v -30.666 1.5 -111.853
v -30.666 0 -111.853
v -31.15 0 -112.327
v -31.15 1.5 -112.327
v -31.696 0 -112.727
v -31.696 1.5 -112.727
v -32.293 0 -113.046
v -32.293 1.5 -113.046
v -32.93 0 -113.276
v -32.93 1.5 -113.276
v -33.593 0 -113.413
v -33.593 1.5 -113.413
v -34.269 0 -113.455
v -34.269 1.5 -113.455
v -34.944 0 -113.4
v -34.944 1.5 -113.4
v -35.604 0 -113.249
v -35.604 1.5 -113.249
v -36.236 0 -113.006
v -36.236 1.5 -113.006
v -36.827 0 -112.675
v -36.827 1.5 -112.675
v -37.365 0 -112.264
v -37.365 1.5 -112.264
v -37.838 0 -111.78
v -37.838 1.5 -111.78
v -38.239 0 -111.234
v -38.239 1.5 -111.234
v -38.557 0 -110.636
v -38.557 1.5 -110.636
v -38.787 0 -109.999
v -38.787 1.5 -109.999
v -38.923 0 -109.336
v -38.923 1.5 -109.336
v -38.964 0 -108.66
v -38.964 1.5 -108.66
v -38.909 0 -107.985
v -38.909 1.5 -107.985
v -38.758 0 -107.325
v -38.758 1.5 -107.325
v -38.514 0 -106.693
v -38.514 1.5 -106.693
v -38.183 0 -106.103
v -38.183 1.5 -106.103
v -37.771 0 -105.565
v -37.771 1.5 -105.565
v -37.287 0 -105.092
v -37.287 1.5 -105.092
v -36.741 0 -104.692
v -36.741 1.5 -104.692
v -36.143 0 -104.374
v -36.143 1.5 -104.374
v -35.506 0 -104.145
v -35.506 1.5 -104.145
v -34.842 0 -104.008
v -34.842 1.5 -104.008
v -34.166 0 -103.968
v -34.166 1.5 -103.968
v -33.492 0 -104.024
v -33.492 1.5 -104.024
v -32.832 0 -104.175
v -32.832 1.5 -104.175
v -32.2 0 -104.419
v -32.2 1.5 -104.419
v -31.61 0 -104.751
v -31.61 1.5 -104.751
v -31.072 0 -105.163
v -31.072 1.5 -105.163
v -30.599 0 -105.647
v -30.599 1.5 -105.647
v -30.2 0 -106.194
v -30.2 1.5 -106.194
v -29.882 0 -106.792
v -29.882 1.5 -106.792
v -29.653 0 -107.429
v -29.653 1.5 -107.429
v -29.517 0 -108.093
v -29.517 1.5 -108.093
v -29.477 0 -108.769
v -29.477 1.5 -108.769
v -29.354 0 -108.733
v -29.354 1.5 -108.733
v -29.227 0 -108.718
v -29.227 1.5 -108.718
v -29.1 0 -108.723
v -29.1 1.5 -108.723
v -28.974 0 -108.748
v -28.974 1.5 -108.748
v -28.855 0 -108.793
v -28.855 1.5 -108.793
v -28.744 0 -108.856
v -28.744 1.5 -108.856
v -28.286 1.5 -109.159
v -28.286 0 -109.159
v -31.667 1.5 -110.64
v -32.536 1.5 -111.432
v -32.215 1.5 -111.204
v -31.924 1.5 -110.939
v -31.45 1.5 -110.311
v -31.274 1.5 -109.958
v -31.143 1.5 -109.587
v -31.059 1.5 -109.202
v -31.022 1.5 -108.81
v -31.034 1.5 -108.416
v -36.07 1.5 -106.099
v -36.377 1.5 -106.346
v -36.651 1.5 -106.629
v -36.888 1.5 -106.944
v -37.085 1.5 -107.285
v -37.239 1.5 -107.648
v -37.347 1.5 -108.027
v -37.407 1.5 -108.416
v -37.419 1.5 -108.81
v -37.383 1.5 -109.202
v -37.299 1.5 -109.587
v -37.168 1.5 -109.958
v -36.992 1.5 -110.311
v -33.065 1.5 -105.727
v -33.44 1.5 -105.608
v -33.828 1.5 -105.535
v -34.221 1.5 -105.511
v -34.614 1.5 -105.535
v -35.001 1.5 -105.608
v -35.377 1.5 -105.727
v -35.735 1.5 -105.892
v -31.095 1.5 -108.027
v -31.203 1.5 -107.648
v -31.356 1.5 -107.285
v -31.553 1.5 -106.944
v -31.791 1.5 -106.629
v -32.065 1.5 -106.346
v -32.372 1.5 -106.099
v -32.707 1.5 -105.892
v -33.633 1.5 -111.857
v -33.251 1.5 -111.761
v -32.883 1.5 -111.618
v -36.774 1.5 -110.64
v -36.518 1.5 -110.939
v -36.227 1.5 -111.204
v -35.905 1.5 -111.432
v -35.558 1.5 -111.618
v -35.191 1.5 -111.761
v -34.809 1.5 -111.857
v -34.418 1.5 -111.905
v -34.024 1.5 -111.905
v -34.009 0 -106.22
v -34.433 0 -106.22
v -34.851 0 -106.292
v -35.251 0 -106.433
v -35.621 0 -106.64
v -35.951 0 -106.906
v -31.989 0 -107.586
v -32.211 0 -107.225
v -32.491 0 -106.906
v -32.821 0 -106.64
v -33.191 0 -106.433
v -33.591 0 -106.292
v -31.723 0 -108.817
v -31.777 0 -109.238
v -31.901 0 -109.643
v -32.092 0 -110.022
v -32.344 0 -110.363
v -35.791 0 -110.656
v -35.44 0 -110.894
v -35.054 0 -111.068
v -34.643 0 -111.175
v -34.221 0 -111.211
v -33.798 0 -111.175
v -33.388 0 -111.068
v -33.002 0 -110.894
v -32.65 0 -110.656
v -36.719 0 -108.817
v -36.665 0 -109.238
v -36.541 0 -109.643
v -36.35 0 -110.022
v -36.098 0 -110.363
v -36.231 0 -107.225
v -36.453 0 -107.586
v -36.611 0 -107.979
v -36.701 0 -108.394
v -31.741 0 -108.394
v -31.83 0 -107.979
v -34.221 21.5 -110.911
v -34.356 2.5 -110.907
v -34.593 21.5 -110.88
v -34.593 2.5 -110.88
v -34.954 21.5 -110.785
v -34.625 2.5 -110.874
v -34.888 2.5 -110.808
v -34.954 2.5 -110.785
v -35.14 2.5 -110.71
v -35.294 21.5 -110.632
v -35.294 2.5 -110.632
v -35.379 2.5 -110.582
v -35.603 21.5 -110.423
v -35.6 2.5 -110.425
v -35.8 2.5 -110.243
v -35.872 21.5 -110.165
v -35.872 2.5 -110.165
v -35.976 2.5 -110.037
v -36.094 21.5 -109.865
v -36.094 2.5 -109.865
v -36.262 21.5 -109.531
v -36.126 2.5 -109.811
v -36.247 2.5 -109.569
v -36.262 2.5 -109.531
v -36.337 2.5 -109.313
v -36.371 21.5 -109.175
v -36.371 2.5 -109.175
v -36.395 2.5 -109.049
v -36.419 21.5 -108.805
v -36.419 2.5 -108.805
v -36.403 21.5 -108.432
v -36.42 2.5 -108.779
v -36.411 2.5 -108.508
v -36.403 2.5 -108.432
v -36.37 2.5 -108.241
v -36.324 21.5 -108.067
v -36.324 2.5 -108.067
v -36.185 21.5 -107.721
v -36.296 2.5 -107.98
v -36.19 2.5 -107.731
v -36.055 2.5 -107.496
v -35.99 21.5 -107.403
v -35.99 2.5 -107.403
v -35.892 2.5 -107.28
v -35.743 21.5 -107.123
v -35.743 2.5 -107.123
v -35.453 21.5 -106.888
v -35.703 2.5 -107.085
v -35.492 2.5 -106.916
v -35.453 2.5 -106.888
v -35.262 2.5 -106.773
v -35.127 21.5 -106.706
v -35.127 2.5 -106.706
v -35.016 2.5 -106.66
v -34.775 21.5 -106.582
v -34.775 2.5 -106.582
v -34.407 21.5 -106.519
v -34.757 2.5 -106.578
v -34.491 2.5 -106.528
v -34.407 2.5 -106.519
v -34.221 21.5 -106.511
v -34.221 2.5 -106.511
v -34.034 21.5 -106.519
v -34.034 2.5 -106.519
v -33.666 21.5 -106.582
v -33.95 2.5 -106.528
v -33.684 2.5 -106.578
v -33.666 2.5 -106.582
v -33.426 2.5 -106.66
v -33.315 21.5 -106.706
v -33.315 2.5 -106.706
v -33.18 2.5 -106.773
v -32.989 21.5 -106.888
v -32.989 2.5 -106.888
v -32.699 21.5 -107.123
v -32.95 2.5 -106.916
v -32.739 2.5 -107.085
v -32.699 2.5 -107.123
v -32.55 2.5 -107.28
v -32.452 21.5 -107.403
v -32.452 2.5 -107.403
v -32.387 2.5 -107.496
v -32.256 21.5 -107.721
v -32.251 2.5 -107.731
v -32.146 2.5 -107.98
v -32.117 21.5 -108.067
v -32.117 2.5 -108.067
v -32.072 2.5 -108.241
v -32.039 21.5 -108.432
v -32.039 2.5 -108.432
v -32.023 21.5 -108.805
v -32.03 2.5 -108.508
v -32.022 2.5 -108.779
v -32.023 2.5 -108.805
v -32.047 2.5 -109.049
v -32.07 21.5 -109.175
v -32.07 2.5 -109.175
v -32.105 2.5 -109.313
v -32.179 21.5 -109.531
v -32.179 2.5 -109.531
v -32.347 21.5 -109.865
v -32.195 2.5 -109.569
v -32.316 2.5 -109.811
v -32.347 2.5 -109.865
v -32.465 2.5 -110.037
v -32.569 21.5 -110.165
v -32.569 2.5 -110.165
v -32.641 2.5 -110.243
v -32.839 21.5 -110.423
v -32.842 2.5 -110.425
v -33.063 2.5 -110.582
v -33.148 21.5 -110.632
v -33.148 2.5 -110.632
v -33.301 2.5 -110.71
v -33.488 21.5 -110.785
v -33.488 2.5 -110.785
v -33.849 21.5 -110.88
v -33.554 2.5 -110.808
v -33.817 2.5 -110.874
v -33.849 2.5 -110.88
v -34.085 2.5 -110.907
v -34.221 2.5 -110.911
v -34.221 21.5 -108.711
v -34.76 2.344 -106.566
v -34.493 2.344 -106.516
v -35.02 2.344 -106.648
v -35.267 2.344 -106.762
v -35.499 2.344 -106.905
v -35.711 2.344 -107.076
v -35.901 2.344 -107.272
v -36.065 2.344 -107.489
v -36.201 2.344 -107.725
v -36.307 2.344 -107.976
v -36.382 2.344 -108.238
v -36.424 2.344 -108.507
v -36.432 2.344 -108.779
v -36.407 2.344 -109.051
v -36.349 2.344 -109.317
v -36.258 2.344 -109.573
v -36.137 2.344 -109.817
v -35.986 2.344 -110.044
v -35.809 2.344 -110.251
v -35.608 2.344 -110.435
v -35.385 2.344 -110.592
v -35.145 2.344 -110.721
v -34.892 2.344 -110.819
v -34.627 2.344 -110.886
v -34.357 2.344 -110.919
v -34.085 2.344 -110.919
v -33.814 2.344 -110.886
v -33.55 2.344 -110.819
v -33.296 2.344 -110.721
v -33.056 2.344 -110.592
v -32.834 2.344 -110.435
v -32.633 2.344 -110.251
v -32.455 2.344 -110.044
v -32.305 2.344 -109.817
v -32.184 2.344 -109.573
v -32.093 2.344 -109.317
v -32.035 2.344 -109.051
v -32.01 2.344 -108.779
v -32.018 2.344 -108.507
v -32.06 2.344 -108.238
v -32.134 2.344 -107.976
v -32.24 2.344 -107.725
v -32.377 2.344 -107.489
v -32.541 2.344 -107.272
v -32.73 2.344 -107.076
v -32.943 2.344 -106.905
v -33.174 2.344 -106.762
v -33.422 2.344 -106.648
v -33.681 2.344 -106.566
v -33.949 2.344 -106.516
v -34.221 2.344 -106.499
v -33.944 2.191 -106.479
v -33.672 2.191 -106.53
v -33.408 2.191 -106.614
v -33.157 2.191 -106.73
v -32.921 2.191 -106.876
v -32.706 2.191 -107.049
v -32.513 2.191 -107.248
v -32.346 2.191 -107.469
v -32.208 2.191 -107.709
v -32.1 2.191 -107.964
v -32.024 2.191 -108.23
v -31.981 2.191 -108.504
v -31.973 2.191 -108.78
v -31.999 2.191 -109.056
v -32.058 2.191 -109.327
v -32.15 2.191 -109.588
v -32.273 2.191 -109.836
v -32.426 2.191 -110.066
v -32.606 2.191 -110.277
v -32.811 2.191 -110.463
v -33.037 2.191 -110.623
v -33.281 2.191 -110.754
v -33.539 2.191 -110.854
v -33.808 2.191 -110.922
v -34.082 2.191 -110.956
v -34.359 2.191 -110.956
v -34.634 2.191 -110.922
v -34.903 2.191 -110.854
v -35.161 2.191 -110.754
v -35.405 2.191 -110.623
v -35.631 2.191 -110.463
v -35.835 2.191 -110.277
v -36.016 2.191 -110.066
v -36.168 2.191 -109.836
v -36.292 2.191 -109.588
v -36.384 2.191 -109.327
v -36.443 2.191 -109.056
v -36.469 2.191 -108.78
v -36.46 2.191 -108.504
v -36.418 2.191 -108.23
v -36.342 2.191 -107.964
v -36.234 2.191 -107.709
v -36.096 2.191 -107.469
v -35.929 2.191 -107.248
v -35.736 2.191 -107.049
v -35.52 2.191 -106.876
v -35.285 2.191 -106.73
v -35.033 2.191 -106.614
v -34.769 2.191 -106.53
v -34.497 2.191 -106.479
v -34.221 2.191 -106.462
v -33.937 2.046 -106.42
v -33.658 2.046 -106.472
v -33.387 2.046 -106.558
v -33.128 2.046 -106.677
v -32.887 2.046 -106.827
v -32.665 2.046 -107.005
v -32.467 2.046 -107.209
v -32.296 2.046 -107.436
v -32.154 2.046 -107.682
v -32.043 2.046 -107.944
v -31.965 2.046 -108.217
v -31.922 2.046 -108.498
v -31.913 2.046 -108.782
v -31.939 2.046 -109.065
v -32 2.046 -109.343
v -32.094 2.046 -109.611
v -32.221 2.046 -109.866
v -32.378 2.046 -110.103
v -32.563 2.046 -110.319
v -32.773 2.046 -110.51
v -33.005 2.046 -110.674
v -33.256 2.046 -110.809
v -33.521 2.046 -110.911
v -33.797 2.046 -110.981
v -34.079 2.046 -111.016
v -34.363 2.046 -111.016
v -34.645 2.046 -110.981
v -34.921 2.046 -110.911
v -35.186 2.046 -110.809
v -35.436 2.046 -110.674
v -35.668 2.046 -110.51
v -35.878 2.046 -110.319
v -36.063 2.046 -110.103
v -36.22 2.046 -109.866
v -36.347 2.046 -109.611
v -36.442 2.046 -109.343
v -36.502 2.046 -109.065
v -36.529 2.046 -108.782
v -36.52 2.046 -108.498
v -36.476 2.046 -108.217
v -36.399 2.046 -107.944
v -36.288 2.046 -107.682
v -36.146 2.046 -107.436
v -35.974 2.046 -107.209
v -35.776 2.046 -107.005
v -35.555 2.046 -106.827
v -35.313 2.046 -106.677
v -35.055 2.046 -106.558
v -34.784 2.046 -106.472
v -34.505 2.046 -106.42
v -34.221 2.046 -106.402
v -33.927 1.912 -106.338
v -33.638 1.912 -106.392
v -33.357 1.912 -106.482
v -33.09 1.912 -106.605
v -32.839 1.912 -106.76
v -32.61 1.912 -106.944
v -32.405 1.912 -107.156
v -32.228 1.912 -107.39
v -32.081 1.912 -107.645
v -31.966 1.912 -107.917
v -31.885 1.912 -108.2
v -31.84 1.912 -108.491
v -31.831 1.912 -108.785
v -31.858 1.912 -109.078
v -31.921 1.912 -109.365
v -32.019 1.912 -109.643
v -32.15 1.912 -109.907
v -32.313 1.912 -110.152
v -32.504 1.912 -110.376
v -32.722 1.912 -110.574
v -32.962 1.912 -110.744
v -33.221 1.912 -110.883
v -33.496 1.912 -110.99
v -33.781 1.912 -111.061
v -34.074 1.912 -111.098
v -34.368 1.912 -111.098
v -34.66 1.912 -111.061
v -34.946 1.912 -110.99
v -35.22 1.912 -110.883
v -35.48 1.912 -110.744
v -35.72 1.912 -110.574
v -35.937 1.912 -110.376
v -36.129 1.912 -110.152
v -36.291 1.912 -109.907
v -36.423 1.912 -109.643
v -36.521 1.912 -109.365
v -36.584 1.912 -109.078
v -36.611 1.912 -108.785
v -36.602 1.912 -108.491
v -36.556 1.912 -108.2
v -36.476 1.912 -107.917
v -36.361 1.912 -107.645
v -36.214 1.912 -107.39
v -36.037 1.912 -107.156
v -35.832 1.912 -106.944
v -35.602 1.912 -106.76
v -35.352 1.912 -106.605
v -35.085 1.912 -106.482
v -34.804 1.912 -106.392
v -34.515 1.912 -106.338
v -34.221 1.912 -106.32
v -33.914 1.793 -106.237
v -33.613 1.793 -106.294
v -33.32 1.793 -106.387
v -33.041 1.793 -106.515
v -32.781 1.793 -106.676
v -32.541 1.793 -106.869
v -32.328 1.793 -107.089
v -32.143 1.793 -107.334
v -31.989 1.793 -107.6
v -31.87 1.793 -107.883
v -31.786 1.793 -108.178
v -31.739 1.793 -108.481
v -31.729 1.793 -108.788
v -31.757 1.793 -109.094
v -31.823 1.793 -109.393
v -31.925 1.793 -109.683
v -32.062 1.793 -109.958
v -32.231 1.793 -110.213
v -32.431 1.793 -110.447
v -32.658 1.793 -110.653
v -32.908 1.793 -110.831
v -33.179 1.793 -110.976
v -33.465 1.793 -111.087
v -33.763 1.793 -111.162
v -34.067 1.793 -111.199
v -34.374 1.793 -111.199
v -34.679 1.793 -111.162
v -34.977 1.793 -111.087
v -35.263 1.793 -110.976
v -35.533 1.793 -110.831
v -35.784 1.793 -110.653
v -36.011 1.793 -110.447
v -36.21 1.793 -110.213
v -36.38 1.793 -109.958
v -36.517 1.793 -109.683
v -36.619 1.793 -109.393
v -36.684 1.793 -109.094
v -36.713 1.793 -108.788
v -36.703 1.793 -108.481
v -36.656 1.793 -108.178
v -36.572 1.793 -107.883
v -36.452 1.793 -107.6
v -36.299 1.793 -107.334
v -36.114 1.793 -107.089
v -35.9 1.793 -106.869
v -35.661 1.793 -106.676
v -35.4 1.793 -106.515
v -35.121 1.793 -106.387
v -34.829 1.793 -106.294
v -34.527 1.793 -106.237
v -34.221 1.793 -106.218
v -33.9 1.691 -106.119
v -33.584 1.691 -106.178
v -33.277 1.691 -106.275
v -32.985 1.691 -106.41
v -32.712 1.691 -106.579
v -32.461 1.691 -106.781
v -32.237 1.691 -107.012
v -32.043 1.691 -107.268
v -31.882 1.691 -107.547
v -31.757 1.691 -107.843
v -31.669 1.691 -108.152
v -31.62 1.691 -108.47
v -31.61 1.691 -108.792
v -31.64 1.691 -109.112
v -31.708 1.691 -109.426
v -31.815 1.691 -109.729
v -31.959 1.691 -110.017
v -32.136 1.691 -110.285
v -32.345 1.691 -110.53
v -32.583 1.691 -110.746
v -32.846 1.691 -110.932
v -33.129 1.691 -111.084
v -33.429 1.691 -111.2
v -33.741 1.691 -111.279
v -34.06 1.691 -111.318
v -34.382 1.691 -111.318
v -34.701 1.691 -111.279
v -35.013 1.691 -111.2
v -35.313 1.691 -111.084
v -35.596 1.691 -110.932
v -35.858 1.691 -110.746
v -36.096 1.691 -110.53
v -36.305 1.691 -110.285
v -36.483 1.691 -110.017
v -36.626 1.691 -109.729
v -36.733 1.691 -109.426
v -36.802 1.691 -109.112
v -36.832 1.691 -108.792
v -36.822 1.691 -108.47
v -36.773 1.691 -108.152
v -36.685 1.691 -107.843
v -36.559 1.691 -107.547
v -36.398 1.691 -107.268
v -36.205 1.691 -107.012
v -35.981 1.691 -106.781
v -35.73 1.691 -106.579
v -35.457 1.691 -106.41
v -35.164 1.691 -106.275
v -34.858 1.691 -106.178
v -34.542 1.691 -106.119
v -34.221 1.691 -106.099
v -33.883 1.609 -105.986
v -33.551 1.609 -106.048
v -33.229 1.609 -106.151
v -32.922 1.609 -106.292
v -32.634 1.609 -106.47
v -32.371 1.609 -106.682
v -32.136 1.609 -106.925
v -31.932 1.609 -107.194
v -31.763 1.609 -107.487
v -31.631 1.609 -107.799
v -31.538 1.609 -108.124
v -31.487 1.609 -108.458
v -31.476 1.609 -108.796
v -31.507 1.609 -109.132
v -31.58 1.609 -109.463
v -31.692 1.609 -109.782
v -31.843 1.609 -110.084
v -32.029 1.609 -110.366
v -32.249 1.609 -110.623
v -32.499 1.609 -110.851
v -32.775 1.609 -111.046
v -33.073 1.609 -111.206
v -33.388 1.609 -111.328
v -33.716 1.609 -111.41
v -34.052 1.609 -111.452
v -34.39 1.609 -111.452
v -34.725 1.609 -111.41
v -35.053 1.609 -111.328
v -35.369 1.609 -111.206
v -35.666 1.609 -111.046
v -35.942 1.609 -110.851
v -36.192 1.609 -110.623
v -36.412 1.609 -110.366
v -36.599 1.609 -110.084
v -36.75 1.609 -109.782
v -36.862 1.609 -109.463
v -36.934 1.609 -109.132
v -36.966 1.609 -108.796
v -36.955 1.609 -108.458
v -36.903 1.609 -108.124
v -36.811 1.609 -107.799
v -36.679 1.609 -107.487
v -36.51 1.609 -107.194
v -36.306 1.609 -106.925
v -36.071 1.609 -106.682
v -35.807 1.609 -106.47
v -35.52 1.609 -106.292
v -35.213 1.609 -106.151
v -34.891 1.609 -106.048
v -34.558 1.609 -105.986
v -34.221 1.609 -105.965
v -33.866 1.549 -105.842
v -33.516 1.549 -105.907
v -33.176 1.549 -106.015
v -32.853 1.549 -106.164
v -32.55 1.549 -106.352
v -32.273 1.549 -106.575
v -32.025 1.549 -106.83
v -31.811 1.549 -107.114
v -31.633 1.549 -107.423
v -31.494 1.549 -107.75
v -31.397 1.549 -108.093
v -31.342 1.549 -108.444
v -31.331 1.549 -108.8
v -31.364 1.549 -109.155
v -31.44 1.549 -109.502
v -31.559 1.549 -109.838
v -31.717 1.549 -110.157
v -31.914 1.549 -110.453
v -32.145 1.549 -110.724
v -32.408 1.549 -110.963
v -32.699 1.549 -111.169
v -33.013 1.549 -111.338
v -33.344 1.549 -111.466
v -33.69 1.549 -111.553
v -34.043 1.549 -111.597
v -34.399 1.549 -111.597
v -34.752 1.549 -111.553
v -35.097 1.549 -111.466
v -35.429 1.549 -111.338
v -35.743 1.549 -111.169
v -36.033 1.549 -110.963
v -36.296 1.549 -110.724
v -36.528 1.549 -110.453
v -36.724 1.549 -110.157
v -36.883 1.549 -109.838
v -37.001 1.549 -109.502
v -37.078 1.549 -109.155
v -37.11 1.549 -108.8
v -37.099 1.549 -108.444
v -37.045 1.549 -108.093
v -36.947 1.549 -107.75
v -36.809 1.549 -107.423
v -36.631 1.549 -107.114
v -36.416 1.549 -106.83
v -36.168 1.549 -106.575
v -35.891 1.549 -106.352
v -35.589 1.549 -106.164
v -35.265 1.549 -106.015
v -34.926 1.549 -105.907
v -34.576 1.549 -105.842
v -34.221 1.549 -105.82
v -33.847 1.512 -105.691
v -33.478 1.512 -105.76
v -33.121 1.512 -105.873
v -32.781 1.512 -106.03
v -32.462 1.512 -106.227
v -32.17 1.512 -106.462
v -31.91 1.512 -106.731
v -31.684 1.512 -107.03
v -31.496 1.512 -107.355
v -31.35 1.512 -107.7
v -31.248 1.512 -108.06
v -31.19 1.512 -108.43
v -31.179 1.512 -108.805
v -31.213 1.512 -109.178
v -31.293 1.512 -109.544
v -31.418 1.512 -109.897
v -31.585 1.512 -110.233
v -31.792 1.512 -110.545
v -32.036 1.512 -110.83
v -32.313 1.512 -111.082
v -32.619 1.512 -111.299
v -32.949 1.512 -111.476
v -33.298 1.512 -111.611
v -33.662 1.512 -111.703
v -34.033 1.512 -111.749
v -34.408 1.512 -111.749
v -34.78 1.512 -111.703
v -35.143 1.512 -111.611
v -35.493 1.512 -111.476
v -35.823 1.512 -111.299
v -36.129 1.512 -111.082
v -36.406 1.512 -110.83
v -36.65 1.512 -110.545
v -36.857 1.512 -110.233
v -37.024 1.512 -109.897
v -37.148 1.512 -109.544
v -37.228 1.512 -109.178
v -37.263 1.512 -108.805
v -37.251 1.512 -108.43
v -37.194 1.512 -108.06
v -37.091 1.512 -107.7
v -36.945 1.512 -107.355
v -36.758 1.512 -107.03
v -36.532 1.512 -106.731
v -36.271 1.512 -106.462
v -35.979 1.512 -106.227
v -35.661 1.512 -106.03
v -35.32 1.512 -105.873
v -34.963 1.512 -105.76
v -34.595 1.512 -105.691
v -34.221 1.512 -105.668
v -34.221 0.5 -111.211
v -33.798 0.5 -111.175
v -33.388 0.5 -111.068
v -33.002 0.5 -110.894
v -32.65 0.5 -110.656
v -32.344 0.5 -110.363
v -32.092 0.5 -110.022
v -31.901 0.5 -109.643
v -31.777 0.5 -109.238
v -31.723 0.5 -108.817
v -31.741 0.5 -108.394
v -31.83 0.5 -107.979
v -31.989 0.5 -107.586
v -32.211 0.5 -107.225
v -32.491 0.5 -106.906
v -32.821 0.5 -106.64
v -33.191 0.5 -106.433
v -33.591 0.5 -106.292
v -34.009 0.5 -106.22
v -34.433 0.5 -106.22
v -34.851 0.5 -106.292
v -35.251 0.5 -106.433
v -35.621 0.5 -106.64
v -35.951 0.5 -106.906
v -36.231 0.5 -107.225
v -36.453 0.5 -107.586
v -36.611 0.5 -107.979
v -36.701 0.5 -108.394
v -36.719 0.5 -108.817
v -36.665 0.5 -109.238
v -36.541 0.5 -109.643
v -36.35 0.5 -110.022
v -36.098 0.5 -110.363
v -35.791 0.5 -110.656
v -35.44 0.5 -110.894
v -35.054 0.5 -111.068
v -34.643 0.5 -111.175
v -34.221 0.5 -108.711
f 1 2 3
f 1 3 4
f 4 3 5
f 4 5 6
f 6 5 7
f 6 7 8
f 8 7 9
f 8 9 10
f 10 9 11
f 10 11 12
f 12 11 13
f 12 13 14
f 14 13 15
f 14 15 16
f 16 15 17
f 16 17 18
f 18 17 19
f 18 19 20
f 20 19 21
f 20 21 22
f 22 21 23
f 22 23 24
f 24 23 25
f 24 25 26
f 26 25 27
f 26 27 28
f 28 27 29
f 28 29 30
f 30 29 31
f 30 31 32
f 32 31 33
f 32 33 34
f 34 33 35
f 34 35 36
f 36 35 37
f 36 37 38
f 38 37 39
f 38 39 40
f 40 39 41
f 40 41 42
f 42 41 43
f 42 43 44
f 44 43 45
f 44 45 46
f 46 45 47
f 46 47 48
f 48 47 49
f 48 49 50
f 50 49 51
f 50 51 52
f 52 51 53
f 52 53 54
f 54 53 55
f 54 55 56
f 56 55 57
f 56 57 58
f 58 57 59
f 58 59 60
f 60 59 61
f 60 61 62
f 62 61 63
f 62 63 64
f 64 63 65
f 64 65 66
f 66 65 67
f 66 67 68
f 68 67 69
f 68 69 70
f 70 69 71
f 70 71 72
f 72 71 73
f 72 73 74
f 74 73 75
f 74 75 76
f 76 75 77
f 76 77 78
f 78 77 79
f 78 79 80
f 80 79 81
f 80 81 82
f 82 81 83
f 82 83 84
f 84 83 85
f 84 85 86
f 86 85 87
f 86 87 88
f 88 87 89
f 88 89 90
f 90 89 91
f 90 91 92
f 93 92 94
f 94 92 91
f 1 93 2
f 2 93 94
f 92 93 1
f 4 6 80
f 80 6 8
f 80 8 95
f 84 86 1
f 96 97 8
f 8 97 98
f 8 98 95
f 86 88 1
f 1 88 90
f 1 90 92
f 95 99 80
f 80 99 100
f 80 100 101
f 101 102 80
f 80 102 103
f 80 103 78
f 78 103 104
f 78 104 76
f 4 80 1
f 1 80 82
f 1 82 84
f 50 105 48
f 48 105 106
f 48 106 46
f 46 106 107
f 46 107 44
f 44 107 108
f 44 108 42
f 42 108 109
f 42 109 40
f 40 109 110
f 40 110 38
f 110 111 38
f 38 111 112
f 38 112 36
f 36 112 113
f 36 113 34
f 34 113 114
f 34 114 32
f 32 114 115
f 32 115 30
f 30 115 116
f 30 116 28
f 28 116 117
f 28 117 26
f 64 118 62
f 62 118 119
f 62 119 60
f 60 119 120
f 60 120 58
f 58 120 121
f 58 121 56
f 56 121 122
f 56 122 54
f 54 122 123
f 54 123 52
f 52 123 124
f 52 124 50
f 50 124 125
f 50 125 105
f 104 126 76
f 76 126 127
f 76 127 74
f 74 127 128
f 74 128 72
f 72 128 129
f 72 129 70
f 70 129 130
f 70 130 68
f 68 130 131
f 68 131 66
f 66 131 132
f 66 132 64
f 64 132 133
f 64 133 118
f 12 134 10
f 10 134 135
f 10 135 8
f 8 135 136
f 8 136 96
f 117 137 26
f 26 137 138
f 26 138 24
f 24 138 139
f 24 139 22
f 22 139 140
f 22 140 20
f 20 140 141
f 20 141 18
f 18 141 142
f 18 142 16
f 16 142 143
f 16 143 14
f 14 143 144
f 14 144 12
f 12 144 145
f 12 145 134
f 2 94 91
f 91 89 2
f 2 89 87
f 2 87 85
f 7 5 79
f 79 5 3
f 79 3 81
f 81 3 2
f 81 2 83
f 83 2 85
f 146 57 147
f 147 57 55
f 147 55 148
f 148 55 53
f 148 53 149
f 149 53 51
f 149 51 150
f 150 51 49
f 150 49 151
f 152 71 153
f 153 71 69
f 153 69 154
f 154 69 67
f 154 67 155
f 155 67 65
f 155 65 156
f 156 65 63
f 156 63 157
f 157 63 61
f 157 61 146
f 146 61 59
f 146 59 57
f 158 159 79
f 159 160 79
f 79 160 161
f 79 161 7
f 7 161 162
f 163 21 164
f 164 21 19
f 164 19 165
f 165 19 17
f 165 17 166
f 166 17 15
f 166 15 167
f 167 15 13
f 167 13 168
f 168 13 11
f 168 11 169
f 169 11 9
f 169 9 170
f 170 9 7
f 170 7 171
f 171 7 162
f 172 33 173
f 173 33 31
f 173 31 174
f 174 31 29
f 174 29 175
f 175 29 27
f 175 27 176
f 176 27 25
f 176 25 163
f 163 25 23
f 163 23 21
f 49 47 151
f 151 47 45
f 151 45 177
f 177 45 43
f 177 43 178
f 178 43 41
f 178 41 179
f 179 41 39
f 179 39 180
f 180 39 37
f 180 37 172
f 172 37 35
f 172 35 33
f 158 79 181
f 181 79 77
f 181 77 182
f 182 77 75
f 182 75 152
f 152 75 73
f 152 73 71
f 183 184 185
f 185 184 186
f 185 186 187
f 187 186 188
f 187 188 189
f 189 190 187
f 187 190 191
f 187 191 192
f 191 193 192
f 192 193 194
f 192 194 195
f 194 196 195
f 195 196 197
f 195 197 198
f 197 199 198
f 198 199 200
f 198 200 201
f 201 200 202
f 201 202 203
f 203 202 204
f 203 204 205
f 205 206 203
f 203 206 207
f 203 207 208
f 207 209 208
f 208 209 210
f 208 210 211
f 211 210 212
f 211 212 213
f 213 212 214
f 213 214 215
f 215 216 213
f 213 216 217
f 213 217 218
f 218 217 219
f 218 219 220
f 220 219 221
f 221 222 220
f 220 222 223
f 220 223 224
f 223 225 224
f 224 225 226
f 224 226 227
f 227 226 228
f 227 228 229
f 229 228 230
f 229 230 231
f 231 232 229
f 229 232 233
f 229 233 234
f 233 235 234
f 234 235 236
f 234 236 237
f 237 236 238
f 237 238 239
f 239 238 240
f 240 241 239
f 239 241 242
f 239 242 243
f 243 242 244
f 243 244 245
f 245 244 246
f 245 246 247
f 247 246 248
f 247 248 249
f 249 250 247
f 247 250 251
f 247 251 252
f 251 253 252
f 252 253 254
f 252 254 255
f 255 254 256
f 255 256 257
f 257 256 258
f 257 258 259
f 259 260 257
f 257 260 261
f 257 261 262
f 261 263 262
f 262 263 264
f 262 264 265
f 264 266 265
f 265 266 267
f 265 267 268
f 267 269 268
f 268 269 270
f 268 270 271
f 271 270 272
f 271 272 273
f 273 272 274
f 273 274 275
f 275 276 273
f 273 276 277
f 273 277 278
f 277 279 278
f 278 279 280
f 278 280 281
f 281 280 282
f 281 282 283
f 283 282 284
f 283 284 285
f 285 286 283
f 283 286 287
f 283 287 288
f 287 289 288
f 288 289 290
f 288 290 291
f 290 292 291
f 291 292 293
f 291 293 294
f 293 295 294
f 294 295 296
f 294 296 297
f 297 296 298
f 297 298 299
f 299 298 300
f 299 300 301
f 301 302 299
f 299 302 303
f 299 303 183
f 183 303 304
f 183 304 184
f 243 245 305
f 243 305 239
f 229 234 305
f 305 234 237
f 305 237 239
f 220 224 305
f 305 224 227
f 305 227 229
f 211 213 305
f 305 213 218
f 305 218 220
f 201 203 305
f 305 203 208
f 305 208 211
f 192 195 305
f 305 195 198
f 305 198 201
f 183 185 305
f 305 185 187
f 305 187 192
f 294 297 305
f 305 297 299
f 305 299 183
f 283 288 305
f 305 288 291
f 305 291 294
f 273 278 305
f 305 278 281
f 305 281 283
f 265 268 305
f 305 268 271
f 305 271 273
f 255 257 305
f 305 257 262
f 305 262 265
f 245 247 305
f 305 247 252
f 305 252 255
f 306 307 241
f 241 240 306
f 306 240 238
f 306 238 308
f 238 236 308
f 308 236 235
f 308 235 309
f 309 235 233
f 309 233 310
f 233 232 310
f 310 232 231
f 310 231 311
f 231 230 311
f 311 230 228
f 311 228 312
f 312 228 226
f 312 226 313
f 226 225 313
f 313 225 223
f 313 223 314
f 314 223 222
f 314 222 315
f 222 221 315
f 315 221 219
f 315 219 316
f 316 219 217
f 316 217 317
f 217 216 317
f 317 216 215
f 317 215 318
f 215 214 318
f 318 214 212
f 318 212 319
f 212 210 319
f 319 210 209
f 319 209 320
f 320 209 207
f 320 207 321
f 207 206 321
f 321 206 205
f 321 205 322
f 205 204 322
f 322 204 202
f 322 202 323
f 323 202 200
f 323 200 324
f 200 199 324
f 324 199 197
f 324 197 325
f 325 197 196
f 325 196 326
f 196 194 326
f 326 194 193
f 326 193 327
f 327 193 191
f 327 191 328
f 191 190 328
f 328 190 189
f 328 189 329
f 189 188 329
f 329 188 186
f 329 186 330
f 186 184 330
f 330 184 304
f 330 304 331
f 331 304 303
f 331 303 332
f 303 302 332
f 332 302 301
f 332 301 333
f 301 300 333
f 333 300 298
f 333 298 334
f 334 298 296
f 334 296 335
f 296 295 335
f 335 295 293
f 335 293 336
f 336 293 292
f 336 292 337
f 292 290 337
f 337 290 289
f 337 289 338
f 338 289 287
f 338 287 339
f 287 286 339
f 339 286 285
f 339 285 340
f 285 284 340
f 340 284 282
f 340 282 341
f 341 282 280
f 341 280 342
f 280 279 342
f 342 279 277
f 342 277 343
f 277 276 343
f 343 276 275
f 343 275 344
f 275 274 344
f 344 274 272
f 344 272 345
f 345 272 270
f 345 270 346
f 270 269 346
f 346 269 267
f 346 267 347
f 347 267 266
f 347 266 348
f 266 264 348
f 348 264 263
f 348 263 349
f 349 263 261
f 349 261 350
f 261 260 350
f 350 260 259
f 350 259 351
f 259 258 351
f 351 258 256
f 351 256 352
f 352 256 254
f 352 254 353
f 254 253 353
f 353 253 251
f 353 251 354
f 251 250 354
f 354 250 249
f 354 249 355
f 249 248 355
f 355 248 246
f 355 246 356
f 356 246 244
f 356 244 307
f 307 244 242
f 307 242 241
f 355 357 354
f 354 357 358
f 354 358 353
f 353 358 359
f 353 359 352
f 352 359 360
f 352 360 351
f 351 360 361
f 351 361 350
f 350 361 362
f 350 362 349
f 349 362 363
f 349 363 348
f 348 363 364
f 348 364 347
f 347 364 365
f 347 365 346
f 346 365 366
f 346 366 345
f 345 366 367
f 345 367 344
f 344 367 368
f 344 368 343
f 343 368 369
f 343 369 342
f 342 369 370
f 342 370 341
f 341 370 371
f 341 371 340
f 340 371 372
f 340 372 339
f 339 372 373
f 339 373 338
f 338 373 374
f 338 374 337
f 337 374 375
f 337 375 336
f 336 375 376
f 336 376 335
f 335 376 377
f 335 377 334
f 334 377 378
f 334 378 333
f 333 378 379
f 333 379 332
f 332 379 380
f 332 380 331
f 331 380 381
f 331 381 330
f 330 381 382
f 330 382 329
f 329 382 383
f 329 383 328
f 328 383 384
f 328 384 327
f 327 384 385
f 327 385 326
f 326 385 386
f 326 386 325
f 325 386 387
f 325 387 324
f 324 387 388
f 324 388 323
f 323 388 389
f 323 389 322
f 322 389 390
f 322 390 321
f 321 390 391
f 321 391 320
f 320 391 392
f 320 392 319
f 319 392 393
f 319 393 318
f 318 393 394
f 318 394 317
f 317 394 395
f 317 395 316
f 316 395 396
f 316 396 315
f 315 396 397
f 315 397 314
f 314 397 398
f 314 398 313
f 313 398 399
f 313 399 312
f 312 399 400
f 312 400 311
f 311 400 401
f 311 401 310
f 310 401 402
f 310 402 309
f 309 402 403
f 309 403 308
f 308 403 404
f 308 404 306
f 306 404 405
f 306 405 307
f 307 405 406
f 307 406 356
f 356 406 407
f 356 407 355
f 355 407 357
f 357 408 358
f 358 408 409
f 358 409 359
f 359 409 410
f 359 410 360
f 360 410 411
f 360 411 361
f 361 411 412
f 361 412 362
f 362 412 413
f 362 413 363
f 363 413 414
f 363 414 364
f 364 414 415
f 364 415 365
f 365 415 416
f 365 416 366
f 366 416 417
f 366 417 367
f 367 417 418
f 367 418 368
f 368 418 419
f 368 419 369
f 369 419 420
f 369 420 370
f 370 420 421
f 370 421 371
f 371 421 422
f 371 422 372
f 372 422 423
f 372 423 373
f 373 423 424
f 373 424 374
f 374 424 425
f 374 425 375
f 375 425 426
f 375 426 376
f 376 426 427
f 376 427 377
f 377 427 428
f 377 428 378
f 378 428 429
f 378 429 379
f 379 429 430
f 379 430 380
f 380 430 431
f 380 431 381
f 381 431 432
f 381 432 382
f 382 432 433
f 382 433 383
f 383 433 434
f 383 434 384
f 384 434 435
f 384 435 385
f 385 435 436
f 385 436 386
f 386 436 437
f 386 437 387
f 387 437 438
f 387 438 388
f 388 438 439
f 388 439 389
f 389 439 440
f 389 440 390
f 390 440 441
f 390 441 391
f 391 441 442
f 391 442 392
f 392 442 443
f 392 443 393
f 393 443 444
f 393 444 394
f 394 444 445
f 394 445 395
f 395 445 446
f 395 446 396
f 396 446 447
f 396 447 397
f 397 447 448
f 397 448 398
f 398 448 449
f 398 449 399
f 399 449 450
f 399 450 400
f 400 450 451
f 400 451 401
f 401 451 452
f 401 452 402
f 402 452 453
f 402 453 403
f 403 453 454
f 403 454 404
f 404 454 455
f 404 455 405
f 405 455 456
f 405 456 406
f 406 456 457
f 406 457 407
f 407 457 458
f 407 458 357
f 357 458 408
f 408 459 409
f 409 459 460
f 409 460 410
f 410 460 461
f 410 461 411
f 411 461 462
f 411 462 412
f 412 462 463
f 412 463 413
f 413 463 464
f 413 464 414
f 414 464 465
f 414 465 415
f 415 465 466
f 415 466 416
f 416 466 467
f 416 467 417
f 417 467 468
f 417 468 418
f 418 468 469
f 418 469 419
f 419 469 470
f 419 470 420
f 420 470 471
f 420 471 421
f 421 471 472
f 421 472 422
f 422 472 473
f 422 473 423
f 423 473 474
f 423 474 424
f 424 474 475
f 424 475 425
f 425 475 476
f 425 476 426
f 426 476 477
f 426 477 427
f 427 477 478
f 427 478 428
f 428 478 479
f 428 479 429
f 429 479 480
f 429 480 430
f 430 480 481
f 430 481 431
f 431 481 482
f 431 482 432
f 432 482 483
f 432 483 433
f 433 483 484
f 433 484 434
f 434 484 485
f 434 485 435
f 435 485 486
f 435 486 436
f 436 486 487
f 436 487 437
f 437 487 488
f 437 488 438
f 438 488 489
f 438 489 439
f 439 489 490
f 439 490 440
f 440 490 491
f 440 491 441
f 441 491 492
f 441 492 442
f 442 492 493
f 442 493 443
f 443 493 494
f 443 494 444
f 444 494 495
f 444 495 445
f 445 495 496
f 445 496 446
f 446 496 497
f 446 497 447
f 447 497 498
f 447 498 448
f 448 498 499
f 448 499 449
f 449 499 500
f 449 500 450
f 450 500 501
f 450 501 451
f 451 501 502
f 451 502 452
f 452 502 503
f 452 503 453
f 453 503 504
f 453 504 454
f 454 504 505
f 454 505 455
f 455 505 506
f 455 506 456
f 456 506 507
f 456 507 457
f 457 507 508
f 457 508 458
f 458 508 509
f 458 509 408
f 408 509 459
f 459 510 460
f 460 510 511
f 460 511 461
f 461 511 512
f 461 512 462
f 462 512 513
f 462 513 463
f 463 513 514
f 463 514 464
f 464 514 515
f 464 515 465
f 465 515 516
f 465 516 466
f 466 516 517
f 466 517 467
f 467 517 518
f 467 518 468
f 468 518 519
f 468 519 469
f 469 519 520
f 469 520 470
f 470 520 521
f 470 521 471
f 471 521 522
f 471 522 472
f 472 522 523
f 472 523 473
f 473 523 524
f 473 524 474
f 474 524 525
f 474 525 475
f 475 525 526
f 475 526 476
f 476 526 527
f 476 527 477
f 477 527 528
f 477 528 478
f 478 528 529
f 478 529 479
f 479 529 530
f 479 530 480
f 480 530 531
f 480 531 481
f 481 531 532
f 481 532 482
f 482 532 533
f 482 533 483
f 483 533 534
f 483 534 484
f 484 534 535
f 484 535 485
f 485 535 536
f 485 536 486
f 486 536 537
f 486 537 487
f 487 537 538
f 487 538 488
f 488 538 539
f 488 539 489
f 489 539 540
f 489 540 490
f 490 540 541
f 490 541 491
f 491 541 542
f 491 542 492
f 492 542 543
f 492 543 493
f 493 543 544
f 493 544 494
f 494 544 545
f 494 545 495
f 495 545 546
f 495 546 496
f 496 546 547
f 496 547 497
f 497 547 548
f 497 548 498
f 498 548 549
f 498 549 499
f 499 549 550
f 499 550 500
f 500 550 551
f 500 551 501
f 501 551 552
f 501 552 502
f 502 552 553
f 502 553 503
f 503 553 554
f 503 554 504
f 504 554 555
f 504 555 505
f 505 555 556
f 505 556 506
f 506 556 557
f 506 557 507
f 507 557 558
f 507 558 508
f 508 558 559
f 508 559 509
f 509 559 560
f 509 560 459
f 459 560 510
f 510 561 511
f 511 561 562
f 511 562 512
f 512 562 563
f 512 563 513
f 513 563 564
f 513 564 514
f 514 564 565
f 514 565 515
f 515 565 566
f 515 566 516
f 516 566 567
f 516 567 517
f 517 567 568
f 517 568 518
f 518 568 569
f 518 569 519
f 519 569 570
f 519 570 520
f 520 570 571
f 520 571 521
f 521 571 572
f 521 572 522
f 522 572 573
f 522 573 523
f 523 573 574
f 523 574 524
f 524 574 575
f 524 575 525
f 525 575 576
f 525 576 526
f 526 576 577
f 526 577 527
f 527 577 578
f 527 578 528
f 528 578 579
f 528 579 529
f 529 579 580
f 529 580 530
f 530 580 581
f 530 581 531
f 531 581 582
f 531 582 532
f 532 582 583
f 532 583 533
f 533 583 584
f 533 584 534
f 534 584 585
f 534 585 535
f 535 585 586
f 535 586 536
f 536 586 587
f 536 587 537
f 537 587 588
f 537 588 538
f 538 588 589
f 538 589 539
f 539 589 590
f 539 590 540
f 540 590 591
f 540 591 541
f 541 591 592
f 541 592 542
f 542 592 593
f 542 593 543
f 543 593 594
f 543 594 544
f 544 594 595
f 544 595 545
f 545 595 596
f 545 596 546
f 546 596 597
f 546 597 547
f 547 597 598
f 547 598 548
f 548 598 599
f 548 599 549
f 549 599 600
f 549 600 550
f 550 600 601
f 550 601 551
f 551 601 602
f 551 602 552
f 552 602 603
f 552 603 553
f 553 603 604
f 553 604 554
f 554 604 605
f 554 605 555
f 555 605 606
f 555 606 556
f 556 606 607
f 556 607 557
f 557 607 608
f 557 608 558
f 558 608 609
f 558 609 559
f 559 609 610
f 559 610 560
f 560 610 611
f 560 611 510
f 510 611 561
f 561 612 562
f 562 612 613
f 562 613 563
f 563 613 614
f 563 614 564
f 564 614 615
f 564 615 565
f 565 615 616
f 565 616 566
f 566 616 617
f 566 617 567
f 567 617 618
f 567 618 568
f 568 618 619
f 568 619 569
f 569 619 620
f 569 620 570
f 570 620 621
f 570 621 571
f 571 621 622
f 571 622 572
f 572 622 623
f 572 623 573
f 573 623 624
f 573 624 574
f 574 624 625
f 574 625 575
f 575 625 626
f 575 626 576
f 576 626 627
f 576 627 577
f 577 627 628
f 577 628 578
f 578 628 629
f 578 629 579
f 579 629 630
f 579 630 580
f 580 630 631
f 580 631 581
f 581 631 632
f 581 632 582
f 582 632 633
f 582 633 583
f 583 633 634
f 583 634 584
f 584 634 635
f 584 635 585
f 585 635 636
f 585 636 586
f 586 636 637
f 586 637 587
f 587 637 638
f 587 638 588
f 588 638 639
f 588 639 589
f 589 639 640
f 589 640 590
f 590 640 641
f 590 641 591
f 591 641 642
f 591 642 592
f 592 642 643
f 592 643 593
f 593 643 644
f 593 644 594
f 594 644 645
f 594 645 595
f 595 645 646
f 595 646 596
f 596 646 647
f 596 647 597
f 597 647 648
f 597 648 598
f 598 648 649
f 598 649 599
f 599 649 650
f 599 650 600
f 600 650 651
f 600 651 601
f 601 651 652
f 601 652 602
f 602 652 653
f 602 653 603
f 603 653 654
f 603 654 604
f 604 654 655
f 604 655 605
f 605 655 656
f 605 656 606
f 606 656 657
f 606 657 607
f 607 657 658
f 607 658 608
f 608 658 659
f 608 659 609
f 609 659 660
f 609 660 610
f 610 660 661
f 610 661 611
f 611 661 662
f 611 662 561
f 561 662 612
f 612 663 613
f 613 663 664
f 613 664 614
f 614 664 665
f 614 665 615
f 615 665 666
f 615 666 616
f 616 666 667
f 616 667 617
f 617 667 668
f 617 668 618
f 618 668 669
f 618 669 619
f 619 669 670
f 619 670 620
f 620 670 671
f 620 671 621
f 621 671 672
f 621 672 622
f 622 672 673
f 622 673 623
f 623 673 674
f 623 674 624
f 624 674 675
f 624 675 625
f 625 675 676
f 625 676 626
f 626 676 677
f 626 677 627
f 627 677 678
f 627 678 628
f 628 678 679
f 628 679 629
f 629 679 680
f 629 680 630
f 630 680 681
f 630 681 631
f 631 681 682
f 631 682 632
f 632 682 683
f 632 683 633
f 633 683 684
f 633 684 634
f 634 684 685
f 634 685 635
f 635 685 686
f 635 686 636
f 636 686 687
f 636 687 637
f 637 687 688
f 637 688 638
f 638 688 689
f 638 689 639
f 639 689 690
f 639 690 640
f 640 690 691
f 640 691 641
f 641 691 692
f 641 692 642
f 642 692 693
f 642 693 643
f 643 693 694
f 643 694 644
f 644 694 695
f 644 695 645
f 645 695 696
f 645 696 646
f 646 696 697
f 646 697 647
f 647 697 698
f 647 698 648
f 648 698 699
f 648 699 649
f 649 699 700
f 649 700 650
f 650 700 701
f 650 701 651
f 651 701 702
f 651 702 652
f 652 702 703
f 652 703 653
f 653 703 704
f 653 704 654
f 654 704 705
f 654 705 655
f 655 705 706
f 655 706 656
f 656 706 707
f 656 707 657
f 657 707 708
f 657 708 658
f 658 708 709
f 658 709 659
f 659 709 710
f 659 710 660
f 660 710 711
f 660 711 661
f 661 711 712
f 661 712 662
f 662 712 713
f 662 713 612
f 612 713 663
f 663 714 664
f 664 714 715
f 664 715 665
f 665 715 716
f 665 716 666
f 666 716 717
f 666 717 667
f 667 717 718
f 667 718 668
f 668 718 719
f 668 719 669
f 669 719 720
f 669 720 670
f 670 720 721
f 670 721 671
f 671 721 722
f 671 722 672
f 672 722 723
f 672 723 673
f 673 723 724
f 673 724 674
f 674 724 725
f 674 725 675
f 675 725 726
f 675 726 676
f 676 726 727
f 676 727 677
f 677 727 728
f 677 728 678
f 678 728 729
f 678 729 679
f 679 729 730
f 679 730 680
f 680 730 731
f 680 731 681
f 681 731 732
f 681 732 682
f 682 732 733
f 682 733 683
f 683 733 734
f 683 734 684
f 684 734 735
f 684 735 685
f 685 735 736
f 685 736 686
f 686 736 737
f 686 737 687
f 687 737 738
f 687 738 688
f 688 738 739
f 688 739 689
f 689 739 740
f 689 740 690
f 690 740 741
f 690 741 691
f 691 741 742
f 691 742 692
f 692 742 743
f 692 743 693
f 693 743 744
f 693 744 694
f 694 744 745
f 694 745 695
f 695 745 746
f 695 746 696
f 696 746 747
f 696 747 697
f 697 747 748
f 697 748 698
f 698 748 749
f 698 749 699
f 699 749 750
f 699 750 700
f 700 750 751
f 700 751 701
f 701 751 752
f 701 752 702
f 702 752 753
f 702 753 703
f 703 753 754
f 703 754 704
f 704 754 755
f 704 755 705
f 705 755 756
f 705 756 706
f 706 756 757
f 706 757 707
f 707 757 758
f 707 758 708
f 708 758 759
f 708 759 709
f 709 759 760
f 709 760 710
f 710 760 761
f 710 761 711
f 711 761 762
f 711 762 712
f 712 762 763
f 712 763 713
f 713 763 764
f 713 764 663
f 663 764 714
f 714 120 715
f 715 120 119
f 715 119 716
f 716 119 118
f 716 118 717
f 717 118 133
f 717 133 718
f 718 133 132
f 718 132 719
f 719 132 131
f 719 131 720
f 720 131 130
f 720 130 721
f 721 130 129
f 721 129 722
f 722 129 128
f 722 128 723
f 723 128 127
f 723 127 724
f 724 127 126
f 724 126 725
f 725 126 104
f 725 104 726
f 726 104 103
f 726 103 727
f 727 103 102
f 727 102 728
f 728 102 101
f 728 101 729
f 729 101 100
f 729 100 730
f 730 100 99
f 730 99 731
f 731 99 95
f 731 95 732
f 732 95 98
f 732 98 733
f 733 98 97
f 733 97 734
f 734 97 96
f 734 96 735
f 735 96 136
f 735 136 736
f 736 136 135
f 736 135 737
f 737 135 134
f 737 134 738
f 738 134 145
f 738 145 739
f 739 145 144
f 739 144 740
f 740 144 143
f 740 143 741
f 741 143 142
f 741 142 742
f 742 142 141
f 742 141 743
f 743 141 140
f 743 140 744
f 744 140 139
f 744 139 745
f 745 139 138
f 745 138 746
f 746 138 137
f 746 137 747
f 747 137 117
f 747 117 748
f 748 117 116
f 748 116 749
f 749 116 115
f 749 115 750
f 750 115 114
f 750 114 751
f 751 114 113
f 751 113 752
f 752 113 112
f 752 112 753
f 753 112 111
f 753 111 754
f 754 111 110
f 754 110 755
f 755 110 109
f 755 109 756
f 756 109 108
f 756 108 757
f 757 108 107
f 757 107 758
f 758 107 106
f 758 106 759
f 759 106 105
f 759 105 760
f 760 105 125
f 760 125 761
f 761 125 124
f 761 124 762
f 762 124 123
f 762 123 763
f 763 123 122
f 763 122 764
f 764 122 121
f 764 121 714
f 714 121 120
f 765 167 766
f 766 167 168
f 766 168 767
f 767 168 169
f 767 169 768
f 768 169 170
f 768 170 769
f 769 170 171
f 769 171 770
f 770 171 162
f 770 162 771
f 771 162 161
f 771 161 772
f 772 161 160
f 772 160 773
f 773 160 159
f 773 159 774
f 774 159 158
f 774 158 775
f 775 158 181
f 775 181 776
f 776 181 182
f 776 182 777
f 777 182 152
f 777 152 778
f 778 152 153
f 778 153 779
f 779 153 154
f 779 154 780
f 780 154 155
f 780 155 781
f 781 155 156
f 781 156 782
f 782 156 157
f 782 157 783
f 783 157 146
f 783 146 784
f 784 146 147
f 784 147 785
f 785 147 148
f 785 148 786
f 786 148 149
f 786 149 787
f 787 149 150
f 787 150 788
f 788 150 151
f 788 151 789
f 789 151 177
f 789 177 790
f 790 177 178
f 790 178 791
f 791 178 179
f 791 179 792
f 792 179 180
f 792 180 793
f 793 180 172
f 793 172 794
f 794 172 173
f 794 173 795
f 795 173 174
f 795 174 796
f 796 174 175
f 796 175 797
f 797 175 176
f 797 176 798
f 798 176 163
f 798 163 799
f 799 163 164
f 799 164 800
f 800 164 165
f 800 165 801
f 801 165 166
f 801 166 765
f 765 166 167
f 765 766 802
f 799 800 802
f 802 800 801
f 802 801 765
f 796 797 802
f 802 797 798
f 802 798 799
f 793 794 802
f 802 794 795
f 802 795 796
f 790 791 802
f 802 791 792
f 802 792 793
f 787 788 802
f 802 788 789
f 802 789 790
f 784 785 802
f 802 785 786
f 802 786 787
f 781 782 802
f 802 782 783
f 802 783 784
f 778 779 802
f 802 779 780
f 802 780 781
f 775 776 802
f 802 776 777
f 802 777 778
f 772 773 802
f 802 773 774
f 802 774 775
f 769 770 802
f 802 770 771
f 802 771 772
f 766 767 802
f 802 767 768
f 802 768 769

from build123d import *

# Parameters (mm, degrees)
SALIENTE_EXTRUIR1_DEPTH = 1.5
CROQUIS2_R              = 2.2
SALIENTE_EXTRUIR2_DEPTH = 20
FILLET2_R               = 1
SKETCH1_R               = 2.5
CUT_EXTRUDE1_DEPTH      = 0.5


with BuildPart() as part:
    # Croquis1 → Saliente-Extruir1 (new body)
    with BuildSketch(Plane(origin=(0, 0, 0), x_dir=(1, 0, 0), z_dir=(0, 1, 0))):
        with BuildLine():
            Line((-28.743638834, 108.856298042), (-28.28575881, 109.159080257))
            Line((-28.28575881, 109.159080257), (-30.66606326, 111.852582661))
            ThreePointArc((-30.66606326, 111.852582661), (-32.271190025, 113.035950486), (-34.220833362, 113.455095091))
            ThreePointArc((-34.220833362, 113.455095091), (-37.554900965, 105.336408582), (-29.477245058, 108.768689524))
            ThreePointArc((-29.477245058, 108.768689524), (-29.099722767, 108.722734742), (-28.743638834, 108.856298042))
        make_face()
    extrude(amount=SALIENTE_EXTRUIR1_DEPTH)

    # Croquis2 → Saliente-Extruir2 (add)
    with BuildSketch(Plane(origin=(0, 1.5, 0), x_dir=(1, 0, 0), z_dir=(0, 1, 0))):
        with Locations(Location((-34.220833362, 108.71115792, 0), (0, 0, 270))):
            Circle(CROQUIS2_R)
    extrude(amount=SALIENTE_EXTRUIR2_DEPTH)

    # Fillet2
    fillet2_edges = [part.edges().sort_by_distance(p)[0] for p in [
        (-34.220833362, 1.5, -110.91115792),
    ]]
    fillet(fillet2_edges, radius=FILLET2_R)

    # Sketch1 → Cut-Extrude1 (cut)
    with BuildSketch(Plane.XZ):
        with Locations(Location((-34.220833362, -108.71115792, 0), (0, 0, 270))):
            Circle(SKETCH1_R)
    extrude(amount=-CUT_EXTRUDE1_DEPTH, mode=Mode.SUBTRACT)


solid = part.part
